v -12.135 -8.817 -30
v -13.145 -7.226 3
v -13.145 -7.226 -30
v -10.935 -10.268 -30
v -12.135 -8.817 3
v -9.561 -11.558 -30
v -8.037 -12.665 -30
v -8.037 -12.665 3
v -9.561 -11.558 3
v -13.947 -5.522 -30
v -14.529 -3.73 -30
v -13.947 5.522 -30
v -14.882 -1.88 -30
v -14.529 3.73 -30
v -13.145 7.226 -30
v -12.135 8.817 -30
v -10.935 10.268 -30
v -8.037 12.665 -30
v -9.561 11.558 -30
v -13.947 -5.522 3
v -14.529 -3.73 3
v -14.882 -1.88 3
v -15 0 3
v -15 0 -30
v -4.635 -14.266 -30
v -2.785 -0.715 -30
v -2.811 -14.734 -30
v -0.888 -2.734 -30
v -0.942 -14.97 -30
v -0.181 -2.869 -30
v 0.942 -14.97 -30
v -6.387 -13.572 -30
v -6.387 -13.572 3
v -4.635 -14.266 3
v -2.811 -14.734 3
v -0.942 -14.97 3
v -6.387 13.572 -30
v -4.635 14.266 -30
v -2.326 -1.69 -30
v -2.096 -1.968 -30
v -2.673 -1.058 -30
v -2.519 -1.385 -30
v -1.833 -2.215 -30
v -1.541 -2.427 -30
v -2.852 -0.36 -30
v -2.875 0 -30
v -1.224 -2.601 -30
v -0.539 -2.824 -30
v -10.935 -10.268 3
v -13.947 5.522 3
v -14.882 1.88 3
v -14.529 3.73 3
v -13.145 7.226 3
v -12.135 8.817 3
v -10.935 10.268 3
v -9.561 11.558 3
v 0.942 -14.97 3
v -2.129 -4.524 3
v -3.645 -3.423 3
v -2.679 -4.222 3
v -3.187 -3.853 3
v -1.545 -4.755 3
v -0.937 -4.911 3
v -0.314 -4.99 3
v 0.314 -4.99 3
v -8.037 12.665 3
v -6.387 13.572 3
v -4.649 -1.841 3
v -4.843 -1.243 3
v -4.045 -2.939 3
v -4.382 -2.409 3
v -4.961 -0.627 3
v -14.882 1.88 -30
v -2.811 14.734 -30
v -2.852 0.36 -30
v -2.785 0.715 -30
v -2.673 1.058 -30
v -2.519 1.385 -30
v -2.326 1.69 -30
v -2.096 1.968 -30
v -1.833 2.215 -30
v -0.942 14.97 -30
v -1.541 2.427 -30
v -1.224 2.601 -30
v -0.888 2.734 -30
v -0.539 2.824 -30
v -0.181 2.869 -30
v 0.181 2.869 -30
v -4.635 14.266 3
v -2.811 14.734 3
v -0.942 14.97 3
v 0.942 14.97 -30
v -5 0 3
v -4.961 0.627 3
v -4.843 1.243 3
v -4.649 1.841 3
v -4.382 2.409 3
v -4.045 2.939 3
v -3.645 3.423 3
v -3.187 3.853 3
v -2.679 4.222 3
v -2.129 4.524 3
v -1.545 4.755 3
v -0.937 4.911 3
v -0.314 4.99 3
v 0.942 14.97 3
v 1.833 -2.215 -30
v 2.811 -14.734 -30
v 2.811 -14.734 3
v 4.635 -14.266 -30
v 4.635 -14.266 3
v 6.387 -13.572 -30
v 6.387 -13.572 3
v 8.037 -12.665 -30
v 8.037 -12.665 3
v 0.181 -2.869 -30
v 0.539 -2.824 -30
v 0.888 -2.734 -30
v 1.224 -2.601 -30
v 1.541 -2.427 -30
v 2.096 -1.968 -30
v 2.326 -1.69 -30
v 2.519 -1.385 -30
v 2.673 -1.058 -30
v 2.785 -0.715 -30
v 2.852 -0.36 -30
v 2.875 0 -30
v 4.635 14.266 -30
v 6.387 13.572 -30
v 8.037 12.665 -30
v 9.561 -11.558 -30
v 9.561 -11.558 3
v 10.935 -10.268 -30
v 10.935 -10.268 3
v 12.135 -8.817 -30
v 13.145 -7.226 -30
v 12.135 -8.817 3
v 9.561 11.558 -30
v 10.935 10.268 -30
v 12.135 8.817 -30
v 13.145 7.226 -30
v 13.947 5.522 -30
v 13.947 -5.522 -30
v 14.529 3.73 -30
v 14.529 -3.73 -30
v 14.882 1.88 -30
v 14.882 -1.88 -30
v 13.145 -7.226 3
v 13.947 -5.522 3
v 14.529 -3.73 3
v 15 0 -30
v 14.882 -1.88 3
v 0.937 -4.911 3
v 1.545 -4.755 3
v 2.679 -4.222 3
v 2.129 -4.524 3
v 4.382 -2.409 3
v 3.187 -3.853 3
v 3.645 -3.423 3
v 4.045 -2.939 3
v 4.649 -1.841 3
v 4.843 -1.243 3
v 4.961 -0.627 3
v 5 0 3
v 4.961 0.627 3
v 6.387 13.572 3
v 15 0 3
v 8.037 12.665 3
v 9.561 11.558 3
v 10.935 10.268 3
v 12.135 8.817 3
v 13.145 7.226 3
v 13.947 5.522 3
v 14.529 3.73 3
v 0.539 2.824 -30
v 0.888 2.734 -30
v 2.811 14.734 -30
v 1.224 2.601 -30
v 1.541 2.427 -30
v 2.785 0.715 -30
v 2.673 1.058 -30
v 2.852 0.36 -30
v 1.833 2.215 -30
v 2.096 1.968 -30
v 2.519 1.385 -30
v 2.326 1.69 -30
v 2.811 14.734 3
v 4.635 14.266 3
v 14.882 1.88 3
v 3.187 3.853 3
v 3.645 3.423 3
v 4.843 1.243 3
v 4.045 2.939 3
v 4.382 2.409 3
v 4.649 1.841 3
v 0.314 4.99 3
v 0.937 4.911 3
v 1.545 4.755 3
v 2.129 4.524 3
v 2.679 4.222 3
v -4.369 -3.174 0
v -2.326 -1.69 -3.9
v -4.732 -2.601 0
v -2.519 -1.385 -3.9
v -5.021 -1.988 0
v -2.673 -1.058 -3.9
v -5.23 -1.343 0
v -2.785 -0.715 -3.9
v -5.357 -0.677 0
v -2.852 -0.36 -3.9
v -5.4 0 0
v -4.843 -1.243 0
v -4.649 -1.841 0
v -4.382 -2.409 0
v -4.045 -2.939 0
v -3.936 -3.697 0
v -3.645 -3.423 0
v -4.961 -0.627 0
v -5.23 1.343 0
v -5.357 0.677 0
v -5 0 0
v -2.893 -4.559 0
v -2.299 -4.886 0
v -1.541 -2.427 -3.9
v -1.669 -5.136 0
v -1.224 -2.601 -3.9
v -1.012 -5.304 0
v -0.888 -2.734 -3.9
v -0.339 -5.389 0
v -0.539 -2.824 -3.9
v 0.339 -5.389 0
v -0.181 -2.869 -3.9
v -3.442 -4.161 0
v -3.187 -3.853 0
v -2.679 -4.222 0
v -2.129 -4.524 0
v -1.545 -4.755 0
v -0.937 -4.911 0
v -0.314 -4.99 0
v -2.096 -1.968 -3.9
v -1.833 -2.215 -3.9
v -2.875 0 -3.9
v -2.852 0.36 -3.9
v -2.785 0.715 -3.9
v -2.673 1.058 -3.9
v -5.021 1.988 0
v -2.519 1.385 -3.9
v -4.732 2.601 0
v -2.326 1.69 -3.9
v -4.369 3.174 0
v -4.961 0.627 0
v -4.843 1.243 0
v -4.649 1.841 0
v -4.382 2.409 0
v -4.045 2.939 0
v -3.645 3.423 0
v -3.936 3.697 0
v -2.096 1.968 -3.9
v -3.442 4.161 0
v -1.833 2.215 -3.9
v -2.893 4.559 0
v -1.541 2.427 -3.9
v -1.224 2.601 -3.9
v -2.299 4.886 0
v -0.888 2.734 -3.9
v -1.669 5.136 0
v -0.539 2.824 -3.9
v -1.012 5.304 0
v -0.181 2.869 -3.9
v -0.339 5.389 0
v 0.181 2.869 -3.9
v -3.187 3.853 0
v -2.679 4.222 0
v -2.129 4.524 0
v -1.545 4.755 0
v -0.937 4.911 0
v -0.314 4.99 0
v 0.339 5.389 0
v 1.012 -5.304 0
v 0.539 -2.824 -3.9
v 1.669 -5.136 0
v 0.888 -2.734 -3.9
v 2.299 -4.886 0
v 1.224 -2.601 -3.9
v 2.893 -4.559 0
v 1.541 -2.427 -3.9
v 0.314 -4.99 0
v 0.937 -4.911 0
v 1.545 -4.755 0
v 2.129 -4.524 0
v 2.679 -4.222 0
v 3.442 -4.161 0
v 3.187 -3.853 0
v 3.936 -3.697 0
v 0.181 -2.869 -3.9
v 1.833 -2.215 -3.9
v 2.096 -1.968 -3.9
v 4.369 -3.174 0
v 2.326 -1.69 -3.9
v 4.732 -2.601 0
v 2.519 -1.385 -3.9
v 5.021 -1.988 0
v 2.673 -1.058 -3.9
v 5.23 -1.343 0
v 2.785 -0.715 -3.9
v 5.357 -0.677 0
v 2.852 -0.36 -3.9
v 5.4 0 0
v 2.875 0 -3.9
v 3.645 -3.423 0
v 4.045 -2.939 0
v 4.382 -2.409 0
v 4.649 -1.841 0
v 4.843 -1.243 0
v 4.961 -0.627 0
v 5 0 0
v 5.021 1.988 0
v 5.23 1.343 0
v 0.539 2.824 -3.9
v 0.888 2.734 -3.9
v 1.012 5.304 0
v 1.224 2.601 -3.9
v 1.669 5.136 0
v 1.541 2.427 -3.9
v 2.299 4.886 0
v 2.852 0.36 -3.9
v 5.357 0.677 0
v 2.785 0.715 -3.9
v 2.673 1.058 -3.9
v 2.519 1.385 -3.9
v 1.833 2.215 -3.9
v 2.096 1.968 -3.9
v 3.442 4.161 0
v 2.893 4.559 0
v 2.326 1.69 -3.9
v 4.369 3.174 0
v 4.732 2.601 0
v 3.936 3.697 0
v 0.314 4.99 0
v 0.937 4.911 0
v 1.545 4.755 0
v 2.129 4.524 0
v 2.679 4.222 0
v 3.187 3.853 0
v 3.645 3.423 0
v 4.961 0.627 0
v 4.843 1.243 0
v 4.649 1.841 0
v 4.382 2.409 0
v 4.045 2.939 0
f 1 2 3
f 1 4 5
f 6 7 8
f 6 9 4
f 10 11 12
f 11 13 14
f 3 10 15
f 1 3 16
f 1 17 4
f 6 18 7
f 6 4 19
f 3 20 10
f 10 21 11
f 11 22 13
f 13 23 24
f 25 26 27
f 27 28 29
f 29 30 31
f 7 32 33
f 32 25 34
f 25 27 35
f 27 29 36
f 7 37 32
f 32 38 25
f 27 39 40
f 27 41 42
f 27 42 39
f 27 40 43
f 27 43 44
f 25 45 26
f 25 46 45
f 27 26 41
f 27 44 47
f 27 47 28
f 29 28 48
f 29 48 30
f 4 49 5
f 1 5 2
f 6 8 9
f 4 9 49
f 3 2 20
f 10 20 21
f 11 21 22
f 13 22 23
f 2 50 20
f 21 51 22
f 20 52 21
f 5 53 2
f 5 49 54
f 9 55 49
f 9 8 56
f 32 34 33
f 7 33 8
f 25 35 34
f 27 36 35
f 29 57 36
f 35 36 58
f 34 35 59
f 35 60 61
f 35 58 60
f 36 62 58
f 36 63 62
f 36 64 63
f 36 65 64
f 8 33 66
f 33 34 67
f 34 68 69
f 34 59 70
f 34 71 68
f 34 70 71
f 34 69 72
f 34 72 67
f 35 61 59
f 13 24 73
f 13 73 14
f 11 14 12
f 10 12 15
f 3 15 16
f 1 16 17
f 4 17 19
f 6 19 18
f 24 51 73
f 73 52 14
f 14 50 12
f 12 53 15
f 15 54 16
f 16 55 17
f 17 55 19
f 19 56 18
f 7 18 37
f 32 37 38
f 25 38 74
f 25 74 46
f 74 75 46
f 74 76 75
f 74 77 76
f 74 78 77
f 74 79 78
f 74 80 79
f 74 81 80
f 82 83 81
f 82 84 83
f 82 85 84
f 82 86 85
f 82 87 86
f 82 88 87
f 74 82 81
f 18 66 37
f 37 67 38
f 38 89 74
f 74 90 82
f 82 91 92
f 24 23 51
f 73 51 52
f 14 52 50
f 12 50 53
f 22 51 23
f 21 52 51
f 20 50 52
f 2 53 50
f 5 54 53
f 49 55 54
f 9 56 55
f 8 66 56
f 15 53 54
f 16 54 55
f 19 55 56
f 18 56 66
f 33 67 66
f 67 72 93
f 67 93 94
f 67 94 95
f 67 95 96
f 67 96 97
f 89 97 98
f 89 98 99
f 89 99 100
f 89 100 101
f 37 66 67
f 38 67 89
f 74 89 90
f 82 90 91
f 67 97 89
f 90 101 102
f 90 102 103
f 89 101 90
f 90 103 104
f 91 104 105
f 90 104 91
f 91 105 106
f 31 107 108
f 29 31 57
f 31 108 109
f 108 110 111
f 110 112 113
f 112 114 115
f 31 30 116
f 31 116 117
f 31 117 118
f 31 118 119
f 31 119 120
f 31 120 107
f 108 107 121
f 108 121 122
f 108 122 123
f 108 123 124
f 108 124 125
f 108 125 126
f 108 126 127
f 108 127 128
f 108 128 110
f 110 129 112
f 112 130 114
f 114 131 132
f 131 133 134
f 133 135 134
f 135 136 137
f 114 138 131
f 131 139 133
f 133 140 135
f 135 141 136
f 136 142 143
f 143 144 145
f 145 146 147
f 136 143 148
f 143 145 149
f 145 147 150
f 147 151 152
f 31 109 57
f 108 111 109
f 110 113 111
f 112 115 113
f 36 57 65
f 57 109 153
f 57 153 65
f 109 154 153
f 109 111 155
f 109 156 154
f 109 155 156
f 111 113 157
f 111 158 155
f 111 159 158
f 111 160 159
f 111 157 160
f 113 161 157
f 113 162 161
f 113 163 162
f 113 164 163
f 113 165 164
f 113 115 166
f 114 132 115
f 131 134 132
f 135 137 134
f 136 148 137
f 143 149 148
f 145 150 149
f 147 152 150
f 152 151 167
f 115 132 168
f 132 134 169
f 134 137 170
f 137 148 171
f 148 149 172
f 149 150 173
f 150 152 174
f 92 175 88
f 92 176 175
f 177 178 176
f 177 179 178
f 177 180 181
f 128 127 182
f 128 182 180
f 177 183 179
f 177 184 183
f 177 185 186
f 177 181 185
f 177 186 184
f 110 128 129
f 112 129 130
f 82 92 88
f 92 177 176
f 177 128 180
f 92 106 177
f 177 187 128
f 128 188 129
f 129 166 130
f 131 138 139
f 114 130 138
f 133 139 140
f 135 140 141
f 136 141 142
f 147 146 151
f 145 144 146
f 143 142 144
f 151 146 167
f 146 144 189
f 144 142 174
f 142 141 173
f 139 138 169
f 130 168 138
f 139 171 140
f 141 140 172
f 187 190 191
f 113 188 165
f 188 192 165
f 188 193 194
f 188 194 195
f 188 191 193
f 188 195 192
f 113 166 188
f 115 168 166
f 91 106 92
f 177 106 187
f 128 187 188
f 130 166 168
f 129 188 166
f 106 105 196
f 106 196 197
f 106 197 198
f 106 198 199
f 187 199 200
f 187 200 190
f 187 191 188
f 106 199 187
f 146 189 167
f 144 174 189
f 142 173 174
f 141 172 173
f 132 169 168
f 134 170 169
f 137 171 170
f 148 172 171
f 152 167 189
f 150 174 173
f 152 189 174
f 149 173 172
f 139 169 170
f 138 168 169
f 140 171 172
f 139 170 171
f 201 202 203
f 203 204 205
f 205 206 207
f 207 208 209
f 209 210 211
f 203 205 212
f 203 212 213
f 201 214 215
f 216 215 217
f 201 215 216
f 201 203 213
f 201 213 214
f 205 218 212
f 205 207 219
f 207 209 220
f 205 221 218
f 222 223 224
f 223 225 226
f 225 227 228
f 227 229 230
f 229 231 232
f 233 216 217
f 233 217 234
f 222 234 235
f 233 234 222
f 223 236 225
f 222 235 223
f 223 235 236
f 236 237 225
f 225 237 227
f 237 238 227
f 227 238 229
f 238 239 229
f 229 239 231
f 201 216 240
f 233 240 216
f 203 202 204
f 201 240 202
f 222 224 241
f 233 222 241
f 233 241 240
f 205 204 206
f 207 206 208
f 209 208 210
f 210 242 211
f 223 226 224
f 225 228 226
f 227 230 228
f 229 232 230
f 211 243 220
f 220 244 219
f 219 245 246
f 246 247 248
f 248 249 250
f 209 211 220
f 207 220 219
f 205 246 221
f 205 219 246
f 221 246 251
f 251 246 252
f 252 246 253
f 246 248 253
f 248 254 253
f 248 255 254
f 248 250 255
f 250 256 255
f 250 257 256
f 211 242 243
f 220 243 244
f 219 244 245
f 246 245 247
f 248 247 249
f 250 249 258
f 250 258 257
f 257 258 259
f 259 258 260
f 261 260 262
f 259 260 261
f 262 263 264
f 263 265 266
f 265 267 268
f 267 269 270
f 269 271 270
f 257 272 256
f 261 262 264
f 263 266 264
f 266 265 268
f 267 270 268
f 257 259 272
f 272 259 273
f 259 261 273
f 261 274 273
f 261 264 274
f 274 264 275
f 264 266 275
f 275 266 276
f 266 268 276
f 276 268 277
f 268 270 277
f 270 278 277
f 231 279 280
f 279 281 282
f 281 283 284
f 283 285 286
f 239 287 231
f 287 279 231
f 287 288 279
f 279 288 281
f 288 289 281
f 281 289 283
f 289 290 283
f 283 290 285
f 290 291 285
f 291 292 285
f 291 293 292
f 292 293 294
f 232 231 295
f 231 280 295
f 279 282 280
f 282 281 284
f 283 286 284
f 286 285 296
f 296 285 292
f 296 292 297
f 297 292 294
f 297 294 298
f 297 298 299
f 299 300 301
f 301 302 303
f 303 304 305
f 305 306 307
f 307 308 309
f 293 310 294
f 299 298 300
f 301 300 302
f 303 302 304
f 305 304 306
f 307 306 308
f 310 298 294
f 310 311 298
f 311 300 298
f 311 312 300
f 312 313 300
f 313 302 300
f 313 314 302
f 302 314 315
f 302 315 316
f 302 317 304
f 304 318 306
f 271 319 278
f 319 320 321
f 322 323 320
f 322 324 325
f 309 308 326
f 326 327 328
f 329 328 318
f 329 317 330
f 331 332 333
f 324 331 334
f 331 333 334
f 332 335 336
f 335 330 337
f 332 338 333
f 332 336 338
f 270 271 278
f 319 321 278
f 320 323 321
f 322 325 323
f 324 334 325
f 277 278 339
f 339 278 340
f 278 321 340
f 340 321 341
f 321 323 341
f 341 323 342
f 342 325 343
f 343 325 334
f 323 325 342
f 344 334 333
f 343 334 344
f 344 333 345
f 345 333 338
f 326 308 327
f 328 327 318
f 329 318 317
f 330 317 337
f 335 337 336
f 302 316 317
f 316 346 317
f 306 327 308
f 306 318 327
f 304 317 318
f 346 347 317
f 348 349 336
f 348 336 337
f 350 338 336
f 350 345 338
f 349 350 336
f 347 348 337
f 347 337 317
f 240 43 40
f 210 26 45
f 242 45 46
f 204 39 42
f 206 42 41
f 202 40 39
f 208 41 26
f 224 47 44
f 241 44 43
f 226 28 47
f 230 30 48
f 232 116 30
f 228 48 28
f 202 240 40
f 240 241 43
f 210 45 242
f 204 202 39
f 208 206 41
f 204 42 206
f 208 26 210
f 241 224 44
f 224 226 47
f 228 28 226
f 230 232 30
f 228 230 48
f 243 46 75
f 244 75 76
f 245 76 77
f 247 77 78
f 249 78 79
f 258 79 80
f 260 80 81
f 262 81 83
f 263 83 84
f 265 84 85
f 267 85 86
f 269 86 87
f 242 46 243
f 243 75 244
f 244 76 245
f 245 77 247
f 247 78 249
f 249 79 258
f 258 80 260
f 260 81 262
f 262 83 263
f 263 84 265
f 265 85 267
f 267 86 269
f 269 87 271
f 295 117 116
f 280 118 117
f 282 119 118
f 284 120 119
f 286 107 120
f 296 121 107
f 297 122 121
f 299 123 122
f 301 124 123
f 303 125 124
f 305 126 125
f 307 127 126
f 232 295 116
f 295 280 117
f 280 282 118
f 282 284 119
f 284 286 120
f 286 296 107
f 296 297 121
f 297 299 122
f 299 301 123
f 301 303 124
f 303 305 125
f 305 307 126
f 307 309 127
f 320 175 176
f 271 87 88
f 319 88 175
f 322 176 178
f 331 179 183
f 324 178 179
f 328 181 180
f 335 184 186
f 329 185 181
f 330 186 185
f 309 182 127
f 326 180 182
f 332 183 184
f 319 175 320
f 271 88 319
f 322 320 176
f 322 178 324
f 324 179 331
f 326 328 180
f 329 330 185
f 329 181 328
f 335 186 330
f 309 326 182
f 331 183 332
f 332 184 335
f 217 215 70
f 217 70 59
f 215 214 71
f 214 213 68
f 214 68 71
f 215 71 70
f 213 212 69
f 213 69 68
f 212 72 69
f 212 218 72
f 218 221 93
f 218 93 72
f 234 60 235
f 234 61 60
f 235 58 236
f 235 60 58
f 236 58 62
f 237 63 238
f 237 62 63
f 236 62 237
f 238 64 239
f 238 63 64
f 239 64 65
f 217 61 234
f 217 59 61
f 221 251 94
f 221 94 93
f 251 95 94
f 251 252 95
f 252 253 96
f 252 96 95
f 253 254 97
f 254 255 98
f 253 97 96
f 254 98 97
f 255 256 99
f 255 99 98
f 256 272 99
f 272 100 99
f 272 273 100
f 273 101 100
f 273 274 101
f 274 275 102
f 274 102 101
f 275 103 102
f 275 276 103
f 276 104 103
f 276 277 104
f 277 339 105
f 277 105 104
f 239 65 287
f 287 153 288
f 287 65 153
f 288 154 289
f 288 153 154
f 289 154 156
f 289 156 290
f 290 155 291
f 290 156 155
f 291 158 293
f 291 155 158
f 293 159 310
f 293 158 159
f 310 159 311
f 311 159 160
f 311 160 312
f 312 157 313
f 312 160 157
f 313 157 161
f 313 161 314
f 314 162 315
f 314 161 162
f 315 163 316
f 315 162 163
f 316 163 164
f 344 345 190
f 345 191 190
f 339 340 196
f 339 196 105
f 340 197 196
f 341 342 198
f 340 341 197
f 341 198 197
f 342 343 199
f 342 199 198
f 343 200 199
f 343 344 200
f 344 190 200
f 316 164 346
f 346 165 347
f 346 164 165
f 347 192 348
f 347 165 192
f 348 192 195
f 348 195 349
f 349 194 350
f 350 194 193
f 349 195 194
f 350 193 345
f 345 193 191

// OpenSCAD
$fn = 50;

difference() {
	union() {
		translate(v = [0, 0, -30.0]) {
			cylinder(h = 33, r = 15.0);
		}
		#translate(v = [0, 0, -33.0]) {
			cylinder(h = 33, r = 2.875);
		}
	}
	union() {
		translate(v = [0, 0, 0]) {
			rotate(a = [0, 0, 0]) {
				difference() {
					union() {
						translate(v = [0, 0, -33.0]) {
							cylinder(h = 33, r = 2.6);
						}
						translate(v = [0, 0, -3.9]) {
							cylinder(h = 3.9, r1 = 2.875, r2 = 5.4);
						}
						translate(v = [0, 0, -33.0]) {
							cylinder(h = 33, r = 2.875);
						}
						translate(v = [0, 0, -33.0]) {
							cylinder(h = 33, r = 2.6);
						}
					}
					union();
				}
			}
		}
		#cylinder(h = 3, r = 5.0);
	}
}
